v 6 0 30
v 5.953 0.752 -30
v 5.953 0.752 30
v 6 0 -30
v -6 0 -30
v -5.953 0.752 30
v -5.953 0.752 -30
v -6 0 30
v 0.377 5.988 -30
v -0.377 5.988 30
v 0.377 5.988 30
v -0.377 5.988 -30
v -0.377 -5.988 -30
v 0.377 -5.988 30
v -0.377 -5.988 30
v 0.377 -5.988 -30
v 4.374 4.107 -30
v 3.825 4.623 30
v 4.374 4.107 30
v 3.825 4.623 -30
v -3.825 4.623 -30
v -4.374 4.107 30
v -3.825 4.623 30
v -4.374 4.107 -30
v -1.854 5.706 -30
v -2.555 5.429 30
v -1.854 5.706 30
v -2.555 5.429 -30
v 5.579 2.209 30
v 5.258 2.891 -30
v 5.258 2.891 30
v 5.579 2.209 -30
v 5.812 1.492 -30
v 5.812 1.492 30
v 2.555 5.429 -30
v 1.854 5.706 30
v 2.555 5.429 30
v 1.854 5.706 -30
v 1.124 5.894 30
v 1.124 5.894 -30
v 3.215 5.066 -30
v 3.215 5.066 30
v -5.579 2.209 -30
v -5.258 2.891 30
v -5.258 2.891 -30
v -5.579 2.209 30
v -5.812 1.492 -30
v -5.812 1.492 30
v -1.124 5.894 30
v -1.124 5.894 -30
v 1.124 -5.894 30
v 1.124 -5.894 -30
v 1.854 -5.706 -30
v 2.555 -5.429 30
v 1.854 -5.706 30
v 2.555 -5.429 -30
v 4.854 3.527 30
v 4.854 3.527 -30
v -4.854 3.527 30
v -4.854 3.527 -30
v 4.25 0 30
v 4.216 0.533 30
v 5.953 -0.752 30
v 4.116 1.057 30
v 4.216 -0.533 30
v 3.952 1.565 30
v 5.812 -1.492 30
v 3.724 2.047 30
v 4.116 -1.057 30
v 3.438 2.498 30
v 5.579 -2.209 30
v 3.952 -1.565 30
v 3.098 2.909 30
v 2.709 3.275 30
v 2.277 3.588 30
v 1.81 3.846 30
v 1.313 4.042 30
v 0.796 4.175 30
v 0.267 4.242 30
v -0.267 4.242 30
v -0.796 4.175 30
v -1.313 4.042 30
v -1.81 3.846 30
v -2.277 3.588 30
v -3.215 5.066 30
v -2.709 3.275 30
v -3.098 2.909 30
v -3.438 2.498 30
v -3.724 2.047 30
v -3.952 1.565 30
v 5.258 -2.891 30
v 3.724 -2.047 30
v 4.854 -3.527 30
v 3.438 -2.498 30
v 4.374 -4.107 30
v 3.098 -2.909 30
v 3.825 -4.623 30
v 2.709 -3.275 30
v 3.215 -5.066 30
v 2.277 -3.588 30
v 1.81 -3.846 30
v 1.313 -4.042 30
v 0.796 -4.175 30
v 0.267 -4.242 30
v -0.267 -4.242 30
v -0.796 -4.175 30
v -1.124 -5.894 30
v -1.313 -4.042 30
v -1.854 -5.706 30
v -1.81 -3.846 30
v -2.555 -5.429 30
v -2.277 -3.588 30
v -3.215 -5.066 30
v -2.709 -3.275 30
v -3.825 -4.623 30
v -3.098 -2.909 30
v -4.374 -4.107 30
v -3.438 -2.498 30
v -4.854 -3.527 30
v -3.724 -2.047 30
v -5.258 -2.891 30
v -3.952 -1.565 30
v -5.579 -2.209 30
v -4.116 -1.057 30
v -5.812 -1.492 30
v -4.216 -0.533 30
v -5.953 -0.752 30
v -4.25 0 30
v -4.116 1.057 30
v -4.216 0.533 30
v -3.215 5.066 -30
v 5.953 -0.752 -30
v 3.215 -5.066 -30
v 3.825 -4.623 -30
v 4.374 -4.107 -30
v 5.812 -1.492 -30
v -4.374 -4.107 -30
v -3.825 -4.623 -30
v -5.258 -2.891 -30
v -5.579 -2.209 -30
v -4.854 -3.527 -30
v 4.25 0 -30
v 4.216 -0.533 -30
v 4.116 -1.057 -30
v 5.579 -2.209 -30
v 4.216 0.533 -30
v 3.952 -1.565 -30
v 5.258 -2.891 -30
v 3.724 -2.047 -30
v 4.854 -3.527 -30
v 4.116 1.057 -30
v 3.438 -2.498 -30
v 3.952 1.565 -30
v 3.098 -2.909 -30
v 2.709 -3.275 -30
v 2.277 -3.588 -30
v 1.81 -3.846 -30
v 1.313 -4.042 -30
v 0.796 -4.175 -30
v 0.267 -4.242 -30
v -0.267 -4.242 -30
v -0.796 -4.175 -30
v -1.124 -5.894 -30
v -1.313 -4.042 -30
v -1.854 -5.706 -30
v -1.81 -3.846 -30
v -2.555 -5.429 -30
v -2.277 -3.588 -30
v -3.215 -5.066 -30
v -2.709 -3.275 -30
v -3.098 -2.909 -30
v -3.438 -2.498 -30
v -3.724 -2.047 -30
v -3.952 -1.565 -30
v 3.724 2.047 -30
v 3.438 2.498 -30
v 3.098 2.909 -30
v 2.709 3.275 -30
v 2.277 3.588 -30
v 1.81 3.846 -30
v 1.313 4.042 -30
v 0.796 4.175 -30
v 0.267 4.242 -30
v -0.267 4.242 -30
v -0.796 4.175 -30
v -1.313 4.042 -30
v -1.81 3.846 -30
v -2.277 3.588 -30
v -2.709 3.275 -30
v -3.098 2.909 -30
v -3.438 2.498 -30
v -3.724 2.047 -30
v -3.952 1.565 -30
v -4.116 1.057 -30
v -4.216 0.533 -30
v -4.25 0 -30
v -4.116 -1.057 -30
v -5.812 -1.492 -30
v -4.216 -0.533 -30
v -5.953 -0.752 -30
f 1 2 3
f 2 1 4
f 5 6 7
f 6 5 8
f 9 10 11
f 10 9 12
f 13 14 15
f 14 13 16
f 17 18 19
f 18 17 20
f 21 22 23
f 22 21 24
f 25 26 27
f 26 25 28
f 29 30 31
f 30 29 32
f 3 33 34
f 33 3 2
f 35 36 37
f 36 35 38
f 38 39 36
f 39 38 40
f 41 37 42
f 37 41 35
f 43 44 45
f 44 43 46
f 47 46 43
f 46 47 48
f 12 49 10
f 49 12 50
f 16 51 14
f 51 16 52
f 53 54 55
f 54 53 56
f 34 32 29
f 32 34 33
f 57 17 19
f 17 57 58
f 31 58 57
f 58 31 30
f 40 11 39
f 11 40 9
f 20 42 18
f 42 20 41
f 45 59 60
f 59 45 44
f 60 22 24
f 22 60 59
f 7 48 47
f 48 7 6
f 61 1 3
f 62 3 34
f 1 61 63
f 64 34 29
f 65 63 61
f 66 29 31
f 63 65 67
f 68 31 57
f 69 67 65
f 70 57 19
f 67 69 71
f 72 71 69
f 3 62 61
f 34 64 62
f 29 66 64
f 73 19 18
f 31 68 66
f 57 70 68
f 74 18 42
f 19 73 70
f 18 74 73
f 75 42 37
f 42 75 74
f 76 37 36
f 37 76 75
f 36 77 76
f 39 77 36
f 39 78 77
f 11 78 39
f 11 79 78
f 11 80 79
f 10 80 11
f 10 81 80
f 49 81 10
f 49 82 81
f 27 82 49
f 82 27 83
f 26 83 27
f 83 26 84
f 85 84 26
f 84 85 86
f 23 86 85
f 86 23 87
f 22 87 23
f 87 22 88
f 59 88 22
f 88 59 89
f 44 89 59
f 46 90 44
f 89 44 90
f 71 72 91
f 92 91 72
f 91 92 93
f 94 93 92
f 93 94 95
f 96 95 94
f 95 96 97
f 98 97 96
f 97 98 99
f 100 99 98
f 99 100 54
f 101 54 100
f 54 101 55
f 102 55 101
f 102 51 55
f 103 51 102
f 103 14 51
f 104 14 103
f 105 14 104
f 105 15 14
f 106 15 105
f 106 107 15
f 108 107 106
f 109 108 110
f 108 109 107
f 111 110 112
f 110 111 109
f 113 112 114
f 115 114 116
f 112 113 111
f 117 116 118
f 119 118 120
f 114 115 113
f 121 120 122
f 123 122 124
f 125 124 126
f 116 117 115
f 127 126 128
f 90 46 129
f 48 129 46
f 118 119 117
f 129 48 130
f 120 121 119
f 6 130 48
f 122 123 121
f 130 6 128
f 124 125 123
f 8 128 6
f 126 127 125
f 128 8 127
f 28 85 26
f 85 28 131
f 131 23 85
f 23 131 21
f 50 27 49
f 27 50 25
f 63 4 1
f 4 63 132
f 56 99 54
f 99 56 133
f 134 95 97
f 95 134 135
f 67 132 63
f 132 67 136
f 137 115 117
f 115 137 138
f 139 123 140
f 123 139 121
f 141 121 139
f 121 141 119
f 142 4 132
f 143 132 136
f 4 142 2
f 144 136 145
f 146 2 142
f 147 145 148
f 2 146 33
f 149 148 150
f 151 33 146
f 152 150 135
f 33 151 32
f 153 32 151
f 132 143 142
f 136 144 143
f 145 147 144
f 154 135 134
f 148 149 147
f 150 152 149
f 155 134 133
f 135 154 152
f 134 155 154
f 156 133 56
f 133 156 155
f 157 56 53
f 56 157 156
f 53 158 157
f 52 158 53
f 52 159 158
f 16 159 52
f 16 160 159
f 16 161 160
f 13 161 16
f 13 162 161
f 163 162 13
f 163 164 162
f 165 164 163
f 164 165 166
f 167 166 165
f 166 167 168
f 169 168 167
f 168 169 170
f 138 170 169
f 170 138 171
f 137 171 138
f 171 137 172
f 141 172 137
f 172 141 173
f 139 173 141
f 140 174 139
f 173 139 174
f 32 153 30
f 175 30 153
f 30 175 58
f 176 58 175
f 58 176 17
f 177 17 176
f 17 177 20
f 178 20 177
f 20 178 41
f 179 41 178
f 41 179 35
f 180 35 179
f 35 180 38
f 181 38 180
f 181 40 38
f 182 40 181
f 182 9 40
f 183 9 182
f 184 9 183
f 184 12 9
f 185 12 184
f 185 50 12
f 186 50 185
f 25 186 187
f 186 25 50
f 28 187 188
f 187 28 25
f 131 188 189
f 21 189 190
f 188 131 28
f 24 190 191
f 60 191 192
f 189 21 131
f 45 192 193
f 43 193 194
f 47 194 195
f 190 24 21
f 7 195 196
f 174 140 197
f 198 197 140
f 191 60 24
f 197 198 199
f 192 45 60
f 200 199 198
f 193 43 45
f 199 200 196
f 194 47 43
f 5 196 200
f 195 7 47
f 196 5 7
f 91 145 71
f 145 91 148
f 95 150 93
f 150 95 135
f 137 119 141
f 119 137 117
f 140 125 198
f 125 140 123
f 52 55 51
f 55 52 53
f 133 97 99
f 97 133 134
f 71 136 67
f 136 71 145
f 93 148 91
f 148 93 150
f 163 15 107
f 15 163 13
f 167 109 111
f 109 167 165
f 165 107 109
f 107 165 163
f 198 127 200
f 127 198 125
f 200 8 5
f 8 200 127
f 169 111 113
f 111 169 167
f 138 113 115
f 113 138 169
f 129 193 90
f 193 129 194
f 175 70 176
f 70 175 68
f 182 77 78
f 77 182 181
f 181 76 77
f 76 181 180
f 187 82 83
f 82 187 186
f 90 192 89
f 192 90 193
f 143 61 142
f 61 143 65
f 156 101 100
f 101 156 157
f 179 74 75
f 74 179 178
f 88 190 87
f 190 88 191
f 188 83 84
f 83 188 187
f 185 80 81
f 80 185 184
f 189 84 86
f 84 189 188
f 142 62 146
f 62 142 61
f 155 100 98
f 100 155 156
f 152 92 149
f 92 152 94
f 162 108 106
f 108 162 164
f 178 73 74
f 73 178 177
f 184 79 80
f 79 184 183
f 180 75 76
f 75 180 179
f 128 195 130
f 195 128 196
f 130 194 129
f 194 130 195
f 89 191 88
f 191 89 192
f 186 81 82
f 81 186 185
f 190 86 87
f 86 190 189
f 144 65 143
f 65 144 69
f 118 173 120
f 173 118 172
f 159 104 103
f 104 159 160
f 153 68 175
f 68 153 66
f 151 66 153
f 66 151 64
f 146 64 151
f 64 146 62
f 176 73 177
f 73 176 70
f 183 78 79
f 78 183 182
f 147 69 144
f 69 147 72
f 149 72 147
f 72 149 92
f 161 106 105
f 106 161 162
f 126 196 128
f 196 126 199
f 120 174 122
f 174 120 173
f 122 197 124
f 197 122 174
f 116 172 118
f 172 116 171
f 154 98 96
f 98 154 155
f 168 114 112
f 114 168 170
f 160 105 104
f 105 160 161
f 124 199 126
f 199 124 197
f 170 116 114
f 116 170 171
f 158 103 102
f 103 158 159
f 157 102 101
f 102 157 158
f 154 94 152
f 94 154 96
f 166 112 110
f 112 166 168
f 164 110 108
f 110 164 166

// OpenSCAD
$fn = 50;


difference() {
	union() {
		translate(v = [0, 0, -30.0000000000]) {
			cylinder(h = 60, r = 6.0000000000);
		}
	}
	union() {
		translate(v = [0, 0, -100.0000000000]) {
			cylinder(h = 200, r = 4.2500000000);
		}
	}
}
